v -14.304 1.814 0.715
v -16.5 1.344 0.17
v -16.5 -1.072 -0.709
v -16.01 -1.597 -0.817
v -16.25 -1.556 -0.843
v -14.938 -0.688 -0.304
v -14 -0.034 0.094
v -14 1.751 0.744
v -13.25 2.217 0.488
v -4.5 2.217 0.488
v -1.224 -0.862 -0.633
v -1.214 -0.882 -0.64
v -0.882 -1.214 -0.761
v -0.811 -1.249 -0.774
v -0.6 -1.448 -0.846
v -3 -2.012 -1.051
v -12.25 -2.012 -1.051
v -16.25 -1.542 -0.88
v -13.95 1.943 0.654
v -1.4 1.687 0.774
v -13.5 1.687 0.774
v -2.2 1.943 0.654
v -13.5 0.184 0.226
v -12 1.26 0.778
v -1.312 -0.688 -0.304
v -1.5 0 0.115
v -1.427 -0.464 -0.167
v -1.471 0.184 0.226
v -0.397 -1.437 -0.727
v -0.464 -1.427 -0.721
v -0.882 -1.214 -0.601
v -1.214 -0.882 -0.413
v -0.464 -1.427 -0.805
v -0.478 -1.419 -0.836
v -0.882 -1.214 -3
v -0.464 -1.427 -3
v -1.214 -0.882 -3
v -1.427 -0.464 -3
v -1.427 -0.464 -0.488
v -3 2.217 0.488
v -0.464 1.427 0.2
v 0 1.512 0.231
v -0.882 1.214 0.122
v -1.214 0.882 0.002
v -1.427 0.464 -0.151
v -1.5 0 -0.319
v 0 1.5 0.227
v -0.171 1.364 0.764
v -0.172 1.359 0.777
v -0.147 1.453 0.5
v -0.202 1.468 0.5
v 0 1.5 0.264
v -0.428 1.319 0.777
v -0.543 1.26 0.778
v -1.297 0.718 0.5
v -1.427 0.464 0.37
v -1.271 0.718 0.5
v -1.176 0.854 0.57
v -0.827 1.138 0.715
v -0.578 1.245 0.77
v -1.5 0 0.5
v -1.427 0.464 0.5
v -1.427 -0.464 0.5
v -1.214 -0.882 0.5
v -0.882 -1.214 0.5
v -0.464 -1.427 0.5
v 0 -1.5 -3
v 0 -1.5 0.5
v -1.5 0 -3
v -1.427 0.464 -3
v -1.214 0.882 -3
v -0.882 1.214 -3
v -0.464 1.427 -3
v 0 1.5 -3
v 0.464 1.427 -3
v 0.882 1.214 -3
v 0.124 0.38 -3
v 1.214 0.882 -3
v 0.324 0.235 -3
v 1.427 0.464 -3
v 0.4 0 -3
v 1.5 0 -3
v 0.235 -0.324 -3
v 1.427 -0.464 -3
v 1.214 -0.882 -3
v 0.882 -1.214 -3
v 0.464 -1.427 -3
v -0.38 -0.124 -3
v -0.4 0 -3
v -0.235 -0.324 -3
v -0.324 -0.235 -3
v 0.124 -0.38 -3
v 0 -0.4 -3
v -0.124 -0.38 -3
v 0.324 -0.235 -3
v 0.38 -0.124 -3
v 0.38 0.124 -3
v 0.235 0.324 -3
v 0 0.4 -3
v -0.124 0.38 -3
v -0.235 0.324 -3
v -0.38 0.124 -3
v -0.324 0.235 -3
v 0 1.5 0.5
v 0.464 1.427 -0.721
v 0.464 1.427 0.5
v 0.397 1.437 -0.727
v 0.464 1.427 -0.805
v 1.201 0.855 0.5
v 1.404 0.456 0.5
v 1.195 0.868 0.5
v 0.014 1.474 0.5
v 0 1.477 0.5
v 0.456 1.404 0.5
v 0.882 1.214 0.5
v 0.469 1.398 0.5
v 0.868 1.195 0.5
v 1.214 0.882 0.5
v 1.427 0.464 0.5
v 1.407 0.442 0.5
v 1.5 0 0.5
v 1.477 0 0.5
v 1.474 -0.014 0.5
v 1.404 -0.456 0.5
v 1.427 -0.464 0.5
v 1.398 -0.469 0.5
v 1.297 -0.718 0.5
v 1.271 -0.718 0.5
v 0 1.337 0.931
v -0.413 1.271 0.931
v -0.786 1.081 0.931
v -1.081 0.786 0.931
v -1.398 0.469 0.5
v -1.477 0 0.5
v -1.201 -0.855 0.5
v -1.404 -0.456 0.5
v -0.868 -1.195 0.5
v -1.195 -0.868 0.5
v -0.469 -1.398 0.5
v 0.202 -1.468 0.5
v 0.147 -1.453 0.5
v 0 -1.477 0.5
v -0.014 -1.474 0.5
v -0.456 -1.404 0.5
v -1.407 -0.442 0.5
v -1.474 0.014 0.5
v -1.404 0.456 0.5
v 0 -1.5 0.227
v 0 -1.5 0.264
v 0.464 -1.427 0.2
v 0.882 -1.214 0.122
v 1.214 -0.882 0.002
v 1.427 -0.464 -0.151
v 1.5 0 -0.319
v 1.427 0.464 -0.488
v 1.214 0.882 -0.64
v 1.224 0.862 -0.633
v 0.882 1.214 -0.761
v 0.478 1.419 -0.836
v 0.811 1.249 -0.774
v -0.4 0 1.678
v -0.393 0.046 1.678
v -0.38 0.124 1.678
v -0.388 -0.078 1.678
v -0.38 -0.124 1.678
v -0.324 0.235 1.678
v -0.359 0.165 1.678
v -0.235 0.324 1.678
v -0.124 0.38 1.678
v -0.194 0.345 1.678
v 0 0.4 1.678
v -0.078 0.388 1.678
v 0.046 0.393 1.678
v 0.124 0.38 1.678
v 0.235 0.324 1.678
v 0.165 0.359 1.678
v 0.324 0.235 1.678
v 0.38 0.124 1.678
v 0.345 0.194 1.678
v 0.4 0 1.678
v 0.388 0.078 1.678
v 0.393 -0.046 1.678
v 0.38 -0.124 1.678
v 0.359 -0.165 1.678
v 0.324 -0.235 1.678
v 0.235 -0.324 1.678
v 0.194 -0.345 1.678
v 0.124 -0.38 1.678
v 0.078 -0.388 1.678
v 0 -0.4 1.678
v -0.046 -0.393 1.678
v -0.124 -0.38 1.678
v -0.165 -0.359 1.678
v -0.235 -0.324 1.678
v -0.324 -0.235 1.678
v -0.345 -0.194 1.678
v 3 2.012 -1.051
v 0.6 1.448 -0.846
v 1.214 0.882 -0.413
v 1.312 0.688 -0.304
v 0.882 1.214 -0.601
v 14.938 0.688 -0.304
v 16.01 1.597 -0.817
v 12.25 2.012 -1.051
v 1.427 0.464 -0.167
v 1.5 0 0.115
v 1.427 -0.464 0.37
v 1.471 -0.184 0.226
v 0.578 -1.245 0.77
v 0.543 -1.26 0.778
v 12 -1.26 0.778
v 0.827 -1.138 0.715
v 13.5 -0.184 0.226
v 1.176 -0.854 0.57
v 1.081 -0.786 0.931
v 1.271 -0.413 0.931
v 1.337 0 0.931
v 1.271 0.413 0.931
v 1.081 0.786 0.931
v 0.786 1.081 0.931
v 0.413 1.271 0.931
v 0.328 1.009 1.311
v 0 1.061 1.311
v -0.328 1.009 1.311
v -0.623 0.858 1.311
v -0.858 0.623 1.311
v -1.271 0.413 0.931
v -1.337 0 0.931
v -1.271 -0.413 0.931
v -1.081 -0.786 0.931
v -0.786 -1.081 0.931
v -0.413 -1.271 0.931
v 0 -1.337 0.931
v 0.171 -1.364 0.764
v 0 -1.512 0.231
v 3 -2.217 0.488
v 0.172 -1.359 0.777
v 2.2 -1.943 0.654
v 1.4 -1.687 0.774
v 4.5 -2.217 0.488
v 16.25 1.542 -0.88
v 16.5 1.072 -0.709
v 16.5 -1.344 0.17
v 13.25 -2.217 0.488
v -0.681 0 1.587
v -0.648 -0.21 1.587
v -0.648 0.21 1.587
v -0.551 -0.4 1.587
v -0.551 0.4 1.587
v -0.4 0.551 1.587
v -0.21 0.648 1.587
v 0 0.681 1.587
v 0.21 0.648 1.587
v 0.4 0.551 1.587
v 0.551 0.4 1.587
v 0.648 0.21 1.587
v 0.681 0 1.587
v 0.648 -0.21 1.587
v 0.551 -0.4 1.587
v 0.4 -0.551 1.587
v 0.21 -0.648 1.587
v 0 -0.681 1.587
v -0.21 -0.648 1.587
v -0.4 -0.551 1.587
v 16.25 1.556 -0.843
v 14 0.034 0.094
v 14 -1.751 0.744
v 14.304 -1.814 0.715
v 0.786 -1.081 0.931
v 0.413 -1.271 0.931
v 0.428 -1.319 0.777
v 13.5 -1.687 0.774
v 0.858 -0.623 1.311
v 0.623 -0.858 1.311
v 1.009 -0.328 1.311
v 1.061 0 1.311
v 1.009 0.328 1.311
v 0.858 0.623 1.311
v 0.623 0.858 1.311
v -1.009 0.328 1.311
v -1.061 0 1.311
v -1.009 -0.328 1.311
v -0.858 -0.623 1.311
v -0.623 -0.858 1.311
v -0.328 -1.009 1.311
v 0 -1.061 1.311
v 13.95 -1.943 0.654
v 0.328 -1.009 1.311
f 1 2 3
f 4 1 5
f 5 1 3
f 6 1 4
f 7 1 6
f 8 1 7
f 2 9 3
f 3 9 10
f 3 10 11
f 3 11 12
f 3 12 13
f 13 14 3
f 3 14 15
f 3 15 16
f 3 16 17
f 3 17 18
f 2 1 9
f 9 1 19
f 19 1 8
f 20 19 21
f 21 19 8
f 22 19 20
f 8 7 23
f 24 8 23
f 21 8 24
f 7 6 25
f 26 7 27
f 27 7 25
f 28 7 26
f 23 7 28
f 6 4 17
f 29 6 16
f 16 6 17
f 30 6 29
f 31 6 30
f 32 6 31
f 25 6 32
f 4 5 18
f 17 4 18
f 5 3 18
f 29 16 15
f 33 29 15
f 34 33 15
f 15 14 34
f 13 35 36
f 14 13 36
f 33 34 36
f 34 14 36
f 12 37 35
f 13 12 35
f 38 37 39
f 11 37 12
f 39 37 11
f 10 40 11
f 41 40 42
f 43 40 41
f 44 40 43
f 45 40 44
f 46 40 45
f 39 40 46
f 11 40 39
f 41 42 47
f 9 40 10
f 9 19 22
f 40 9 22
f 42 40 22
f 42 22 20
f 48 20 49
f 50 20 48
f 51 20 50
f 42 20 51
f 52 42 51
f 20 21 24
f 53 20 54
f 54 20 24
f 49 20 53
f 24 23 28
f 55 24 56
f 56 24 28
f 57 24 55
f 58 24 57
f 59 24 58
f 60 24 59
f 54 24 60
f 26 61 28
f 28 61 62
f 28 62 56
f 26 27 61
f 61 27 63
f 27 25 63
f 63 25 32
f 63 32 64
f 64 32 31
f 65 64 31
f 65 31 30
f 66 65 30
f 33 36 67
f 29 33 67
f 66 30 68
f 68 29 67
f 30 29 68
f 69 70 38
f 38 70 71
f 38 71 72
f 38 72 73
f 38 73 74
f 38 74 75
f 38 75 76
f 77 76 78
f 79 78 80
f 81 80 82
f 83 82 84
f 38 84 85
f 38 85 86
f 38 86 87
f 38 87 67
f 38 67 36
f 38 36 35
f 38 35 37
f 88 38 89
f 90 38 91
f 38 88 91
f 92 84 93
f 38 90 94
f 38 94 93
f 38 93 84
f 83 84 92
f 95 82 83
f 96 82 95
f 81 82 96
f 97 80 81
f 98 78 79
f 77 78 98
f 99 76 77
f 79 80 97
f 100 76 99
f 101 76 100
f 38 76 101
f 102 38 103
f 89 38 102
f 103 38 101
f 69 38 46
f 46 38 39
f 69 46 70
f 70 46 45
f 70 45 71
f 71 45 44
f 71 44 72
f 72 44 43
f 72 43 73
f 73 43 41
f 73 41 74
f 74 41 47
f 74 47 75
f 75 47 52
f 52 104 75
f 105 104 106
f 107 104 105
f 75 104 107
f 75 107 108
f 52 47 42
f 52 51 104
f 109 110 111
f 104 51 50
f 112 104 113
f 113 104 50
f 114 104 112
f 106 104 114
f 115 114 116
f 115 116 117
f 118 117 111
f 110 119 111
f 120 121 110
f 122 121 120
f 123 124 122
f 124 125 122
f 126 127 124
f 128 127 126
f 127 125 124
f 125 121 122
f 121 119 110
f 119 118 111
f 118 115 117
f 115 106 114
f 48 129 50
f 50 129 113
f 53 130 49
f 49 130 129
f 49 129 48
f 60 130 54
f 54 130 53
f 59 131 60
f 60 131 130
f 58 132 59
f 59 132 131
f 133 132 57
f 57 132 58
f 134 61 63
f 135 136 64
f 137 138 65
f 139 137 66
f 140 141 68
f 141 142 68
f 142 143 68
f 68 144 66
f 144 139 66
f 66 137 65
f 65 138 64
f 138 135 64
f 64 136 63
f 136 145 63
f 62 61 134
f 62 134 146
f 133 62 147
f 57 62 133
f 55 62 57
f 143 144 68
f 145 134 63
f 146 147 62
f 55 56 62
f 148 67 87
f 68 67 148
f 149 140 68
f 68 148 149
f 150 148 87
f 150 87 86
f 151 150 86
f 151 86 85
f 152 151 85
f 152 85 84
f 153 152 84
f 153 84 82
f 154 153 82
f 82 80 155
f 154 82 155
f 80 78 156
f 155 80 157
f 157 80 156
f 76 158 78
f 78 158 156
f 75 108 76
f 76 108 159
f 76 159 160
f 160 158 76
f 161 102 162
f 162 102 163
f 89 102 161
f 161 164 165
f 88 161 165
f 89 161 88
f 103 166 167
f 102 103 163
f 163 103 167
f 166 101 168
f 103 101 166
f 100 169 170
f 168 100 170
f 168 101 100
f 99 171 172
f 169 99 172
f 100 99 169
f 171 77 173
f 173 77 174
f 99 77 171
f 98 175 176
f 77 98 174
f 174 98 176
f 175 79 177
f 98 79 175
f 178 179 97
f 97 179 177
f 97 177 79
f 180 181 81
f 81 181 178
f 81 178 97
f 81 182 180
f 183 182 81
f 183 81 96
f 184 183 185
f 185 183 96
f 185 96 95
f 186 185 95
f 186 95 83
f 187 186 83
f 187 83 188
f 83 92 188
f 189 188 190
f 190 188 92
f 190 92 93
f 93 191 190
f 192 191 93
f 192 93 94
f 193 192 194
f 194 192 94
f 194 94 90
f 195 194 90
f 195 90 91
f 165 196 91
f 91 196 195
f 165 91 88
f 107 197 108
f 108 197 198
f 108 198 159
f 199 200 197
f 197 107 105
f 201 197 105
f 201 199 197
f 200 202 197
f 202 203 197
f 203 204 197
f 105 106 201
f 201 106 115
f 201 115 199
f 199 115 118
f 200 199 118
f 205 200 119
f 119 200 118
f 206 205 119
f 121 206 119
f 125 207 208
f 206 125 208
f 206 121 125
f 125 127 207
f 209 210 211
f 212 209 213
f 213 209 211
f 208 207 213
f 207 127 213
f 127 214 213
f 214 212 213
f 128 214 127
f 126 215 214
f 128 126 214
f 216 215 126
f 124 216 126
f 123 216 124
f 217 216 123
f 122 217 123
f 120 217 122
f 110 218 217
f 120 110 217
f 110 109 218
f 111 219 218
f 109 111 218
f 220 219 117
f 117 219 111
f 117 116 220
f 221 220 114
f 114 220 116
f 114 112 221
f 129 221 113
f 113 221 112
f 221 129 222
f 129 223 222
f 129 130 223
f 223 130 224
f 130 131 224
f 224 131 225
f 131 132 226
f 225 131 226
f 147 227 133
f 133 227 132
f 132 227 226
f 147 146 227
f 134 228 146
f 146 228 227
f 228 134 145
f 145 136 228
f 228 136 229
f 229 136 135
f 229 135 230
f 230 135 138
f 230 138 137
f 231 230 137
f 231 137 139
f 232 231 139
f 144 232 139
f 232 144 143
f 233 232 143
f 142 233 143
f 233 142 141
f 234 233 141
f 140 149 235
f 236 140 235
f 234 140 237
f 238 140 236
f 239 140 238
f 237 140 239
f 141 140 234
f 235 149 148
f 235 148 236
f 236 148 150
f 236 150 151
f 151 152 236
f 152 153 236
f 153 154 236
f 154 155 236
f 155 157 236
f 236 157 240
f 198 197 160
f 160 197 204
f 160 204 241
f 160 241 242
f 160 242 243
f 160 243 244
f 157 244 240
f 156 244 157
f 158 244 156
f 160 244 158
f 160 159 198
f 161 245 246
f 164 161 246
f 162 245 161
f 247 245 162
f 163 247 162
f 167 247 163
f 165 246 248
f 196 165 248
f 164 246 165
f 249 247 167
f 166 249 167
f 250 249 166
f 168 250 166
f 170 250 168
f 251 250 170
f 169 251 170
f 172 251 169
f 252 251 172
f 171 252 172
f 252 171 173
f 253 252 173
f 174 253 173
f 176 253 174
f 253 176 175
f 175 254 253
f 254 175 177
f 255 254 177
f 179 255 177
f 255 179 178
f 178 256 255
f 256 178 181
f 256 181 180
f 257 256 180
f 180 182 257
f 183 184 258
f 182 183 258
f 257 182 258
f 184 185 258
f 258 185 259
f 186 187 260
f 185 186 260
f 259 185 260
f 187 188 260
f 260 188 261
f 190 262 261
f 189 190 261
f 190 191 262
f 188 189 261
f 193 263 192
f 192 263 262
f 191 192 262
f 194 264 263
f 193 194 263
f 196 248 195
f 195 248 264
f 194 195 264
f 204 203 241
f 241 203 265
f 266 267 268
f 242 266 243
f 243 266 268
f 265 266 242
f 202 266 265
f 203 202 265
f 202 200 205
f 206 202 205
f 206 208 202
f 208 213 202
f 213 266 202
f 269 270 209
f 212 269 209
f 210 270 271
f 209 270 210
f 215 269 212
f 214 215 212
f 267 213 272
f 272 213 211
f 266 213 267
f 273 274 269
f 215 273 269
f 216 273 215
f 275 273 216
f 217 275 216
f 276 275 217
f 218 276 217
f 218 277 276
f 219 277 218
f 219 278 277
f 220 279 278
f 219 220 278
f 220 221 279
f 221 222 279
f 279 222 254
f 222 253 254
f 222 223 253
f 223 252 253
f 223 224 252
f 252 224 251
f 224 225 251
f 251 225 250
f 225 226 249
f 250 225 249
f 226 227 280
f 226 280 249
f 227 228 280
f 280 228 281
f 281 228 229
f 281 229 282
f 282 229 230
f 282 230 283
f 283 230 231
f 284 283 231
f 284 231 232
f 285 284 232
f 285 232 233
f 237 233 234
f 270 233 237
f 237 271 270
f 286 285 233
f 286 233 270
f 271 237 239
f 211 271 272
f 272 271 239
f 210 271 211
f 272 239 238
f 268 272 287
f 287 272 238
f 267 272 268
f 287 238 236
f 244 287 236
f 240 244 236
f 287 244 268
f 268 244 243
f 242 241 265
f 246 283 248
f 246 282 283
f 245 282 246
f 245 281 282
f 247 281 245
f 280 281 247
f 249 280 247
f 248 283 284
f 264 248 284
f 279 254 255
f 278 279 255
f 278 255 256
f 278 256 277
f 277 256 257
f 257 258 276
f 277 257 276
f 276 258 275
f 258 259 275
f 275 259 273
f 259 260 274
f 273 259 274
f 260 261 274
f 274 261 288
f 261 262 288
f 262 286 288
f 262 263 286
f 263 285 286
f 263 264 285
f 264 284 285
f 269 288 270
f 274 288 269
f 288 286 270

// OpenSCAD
module blade(dim) {
translate([16.5/2,0,0])
//X
intersection() {
translate(-dim/2)rotate([90,0,90])linear_extrude(height=dim[0]) {
polygon(points=[[0,0],[0.2,0.25],[0.4,0.45],[0.8,0.6],[2,0.45],[3,0.25],[4.5,0]]);
}
//Y
translate([-dim[0]/2,dim[1]/2,-dim[2]/2])rotate([90,0,0])linear_extrude(height=dim[1]) {
polygon(points=[[0,0],[0,0.6],[12,0.6],[14,0.4],[16.5,0]]);
}
//Z
translate([0,0,-dim[2]/2])rotate([0,0,0])linear_extrude(height=dim[2]) {
polygon(points=[[-8.25,1.5],[-5.25,2.25],[4,2.25],[8,1.75],[8.25,1.25],[8.5,-1.25],[5,-2.25],[-5.25,-2.25],[-8.25,-1.5]]);
}
}
}

module rotor(dir=0,angle=-20){
difference() {
mirror([dir%2,0,0]) union() {
rotate ([angle,0,0]) blade([16.5,4.5,0.6]);
rotate ([angle,0,180]) blade([16.5,4.5,0.6]);
union() {
translate([0,0,-1.25]) cylinder(r=1.5,h=3.5,center=true);
translate([0,0,0.25]) sphere(r=1.5);
}
}
cylinder(r=0.4,h=20,center=true);
}
}

rotor(0);

$fn=20;

//blade([16.5,4.5,0.6]);
